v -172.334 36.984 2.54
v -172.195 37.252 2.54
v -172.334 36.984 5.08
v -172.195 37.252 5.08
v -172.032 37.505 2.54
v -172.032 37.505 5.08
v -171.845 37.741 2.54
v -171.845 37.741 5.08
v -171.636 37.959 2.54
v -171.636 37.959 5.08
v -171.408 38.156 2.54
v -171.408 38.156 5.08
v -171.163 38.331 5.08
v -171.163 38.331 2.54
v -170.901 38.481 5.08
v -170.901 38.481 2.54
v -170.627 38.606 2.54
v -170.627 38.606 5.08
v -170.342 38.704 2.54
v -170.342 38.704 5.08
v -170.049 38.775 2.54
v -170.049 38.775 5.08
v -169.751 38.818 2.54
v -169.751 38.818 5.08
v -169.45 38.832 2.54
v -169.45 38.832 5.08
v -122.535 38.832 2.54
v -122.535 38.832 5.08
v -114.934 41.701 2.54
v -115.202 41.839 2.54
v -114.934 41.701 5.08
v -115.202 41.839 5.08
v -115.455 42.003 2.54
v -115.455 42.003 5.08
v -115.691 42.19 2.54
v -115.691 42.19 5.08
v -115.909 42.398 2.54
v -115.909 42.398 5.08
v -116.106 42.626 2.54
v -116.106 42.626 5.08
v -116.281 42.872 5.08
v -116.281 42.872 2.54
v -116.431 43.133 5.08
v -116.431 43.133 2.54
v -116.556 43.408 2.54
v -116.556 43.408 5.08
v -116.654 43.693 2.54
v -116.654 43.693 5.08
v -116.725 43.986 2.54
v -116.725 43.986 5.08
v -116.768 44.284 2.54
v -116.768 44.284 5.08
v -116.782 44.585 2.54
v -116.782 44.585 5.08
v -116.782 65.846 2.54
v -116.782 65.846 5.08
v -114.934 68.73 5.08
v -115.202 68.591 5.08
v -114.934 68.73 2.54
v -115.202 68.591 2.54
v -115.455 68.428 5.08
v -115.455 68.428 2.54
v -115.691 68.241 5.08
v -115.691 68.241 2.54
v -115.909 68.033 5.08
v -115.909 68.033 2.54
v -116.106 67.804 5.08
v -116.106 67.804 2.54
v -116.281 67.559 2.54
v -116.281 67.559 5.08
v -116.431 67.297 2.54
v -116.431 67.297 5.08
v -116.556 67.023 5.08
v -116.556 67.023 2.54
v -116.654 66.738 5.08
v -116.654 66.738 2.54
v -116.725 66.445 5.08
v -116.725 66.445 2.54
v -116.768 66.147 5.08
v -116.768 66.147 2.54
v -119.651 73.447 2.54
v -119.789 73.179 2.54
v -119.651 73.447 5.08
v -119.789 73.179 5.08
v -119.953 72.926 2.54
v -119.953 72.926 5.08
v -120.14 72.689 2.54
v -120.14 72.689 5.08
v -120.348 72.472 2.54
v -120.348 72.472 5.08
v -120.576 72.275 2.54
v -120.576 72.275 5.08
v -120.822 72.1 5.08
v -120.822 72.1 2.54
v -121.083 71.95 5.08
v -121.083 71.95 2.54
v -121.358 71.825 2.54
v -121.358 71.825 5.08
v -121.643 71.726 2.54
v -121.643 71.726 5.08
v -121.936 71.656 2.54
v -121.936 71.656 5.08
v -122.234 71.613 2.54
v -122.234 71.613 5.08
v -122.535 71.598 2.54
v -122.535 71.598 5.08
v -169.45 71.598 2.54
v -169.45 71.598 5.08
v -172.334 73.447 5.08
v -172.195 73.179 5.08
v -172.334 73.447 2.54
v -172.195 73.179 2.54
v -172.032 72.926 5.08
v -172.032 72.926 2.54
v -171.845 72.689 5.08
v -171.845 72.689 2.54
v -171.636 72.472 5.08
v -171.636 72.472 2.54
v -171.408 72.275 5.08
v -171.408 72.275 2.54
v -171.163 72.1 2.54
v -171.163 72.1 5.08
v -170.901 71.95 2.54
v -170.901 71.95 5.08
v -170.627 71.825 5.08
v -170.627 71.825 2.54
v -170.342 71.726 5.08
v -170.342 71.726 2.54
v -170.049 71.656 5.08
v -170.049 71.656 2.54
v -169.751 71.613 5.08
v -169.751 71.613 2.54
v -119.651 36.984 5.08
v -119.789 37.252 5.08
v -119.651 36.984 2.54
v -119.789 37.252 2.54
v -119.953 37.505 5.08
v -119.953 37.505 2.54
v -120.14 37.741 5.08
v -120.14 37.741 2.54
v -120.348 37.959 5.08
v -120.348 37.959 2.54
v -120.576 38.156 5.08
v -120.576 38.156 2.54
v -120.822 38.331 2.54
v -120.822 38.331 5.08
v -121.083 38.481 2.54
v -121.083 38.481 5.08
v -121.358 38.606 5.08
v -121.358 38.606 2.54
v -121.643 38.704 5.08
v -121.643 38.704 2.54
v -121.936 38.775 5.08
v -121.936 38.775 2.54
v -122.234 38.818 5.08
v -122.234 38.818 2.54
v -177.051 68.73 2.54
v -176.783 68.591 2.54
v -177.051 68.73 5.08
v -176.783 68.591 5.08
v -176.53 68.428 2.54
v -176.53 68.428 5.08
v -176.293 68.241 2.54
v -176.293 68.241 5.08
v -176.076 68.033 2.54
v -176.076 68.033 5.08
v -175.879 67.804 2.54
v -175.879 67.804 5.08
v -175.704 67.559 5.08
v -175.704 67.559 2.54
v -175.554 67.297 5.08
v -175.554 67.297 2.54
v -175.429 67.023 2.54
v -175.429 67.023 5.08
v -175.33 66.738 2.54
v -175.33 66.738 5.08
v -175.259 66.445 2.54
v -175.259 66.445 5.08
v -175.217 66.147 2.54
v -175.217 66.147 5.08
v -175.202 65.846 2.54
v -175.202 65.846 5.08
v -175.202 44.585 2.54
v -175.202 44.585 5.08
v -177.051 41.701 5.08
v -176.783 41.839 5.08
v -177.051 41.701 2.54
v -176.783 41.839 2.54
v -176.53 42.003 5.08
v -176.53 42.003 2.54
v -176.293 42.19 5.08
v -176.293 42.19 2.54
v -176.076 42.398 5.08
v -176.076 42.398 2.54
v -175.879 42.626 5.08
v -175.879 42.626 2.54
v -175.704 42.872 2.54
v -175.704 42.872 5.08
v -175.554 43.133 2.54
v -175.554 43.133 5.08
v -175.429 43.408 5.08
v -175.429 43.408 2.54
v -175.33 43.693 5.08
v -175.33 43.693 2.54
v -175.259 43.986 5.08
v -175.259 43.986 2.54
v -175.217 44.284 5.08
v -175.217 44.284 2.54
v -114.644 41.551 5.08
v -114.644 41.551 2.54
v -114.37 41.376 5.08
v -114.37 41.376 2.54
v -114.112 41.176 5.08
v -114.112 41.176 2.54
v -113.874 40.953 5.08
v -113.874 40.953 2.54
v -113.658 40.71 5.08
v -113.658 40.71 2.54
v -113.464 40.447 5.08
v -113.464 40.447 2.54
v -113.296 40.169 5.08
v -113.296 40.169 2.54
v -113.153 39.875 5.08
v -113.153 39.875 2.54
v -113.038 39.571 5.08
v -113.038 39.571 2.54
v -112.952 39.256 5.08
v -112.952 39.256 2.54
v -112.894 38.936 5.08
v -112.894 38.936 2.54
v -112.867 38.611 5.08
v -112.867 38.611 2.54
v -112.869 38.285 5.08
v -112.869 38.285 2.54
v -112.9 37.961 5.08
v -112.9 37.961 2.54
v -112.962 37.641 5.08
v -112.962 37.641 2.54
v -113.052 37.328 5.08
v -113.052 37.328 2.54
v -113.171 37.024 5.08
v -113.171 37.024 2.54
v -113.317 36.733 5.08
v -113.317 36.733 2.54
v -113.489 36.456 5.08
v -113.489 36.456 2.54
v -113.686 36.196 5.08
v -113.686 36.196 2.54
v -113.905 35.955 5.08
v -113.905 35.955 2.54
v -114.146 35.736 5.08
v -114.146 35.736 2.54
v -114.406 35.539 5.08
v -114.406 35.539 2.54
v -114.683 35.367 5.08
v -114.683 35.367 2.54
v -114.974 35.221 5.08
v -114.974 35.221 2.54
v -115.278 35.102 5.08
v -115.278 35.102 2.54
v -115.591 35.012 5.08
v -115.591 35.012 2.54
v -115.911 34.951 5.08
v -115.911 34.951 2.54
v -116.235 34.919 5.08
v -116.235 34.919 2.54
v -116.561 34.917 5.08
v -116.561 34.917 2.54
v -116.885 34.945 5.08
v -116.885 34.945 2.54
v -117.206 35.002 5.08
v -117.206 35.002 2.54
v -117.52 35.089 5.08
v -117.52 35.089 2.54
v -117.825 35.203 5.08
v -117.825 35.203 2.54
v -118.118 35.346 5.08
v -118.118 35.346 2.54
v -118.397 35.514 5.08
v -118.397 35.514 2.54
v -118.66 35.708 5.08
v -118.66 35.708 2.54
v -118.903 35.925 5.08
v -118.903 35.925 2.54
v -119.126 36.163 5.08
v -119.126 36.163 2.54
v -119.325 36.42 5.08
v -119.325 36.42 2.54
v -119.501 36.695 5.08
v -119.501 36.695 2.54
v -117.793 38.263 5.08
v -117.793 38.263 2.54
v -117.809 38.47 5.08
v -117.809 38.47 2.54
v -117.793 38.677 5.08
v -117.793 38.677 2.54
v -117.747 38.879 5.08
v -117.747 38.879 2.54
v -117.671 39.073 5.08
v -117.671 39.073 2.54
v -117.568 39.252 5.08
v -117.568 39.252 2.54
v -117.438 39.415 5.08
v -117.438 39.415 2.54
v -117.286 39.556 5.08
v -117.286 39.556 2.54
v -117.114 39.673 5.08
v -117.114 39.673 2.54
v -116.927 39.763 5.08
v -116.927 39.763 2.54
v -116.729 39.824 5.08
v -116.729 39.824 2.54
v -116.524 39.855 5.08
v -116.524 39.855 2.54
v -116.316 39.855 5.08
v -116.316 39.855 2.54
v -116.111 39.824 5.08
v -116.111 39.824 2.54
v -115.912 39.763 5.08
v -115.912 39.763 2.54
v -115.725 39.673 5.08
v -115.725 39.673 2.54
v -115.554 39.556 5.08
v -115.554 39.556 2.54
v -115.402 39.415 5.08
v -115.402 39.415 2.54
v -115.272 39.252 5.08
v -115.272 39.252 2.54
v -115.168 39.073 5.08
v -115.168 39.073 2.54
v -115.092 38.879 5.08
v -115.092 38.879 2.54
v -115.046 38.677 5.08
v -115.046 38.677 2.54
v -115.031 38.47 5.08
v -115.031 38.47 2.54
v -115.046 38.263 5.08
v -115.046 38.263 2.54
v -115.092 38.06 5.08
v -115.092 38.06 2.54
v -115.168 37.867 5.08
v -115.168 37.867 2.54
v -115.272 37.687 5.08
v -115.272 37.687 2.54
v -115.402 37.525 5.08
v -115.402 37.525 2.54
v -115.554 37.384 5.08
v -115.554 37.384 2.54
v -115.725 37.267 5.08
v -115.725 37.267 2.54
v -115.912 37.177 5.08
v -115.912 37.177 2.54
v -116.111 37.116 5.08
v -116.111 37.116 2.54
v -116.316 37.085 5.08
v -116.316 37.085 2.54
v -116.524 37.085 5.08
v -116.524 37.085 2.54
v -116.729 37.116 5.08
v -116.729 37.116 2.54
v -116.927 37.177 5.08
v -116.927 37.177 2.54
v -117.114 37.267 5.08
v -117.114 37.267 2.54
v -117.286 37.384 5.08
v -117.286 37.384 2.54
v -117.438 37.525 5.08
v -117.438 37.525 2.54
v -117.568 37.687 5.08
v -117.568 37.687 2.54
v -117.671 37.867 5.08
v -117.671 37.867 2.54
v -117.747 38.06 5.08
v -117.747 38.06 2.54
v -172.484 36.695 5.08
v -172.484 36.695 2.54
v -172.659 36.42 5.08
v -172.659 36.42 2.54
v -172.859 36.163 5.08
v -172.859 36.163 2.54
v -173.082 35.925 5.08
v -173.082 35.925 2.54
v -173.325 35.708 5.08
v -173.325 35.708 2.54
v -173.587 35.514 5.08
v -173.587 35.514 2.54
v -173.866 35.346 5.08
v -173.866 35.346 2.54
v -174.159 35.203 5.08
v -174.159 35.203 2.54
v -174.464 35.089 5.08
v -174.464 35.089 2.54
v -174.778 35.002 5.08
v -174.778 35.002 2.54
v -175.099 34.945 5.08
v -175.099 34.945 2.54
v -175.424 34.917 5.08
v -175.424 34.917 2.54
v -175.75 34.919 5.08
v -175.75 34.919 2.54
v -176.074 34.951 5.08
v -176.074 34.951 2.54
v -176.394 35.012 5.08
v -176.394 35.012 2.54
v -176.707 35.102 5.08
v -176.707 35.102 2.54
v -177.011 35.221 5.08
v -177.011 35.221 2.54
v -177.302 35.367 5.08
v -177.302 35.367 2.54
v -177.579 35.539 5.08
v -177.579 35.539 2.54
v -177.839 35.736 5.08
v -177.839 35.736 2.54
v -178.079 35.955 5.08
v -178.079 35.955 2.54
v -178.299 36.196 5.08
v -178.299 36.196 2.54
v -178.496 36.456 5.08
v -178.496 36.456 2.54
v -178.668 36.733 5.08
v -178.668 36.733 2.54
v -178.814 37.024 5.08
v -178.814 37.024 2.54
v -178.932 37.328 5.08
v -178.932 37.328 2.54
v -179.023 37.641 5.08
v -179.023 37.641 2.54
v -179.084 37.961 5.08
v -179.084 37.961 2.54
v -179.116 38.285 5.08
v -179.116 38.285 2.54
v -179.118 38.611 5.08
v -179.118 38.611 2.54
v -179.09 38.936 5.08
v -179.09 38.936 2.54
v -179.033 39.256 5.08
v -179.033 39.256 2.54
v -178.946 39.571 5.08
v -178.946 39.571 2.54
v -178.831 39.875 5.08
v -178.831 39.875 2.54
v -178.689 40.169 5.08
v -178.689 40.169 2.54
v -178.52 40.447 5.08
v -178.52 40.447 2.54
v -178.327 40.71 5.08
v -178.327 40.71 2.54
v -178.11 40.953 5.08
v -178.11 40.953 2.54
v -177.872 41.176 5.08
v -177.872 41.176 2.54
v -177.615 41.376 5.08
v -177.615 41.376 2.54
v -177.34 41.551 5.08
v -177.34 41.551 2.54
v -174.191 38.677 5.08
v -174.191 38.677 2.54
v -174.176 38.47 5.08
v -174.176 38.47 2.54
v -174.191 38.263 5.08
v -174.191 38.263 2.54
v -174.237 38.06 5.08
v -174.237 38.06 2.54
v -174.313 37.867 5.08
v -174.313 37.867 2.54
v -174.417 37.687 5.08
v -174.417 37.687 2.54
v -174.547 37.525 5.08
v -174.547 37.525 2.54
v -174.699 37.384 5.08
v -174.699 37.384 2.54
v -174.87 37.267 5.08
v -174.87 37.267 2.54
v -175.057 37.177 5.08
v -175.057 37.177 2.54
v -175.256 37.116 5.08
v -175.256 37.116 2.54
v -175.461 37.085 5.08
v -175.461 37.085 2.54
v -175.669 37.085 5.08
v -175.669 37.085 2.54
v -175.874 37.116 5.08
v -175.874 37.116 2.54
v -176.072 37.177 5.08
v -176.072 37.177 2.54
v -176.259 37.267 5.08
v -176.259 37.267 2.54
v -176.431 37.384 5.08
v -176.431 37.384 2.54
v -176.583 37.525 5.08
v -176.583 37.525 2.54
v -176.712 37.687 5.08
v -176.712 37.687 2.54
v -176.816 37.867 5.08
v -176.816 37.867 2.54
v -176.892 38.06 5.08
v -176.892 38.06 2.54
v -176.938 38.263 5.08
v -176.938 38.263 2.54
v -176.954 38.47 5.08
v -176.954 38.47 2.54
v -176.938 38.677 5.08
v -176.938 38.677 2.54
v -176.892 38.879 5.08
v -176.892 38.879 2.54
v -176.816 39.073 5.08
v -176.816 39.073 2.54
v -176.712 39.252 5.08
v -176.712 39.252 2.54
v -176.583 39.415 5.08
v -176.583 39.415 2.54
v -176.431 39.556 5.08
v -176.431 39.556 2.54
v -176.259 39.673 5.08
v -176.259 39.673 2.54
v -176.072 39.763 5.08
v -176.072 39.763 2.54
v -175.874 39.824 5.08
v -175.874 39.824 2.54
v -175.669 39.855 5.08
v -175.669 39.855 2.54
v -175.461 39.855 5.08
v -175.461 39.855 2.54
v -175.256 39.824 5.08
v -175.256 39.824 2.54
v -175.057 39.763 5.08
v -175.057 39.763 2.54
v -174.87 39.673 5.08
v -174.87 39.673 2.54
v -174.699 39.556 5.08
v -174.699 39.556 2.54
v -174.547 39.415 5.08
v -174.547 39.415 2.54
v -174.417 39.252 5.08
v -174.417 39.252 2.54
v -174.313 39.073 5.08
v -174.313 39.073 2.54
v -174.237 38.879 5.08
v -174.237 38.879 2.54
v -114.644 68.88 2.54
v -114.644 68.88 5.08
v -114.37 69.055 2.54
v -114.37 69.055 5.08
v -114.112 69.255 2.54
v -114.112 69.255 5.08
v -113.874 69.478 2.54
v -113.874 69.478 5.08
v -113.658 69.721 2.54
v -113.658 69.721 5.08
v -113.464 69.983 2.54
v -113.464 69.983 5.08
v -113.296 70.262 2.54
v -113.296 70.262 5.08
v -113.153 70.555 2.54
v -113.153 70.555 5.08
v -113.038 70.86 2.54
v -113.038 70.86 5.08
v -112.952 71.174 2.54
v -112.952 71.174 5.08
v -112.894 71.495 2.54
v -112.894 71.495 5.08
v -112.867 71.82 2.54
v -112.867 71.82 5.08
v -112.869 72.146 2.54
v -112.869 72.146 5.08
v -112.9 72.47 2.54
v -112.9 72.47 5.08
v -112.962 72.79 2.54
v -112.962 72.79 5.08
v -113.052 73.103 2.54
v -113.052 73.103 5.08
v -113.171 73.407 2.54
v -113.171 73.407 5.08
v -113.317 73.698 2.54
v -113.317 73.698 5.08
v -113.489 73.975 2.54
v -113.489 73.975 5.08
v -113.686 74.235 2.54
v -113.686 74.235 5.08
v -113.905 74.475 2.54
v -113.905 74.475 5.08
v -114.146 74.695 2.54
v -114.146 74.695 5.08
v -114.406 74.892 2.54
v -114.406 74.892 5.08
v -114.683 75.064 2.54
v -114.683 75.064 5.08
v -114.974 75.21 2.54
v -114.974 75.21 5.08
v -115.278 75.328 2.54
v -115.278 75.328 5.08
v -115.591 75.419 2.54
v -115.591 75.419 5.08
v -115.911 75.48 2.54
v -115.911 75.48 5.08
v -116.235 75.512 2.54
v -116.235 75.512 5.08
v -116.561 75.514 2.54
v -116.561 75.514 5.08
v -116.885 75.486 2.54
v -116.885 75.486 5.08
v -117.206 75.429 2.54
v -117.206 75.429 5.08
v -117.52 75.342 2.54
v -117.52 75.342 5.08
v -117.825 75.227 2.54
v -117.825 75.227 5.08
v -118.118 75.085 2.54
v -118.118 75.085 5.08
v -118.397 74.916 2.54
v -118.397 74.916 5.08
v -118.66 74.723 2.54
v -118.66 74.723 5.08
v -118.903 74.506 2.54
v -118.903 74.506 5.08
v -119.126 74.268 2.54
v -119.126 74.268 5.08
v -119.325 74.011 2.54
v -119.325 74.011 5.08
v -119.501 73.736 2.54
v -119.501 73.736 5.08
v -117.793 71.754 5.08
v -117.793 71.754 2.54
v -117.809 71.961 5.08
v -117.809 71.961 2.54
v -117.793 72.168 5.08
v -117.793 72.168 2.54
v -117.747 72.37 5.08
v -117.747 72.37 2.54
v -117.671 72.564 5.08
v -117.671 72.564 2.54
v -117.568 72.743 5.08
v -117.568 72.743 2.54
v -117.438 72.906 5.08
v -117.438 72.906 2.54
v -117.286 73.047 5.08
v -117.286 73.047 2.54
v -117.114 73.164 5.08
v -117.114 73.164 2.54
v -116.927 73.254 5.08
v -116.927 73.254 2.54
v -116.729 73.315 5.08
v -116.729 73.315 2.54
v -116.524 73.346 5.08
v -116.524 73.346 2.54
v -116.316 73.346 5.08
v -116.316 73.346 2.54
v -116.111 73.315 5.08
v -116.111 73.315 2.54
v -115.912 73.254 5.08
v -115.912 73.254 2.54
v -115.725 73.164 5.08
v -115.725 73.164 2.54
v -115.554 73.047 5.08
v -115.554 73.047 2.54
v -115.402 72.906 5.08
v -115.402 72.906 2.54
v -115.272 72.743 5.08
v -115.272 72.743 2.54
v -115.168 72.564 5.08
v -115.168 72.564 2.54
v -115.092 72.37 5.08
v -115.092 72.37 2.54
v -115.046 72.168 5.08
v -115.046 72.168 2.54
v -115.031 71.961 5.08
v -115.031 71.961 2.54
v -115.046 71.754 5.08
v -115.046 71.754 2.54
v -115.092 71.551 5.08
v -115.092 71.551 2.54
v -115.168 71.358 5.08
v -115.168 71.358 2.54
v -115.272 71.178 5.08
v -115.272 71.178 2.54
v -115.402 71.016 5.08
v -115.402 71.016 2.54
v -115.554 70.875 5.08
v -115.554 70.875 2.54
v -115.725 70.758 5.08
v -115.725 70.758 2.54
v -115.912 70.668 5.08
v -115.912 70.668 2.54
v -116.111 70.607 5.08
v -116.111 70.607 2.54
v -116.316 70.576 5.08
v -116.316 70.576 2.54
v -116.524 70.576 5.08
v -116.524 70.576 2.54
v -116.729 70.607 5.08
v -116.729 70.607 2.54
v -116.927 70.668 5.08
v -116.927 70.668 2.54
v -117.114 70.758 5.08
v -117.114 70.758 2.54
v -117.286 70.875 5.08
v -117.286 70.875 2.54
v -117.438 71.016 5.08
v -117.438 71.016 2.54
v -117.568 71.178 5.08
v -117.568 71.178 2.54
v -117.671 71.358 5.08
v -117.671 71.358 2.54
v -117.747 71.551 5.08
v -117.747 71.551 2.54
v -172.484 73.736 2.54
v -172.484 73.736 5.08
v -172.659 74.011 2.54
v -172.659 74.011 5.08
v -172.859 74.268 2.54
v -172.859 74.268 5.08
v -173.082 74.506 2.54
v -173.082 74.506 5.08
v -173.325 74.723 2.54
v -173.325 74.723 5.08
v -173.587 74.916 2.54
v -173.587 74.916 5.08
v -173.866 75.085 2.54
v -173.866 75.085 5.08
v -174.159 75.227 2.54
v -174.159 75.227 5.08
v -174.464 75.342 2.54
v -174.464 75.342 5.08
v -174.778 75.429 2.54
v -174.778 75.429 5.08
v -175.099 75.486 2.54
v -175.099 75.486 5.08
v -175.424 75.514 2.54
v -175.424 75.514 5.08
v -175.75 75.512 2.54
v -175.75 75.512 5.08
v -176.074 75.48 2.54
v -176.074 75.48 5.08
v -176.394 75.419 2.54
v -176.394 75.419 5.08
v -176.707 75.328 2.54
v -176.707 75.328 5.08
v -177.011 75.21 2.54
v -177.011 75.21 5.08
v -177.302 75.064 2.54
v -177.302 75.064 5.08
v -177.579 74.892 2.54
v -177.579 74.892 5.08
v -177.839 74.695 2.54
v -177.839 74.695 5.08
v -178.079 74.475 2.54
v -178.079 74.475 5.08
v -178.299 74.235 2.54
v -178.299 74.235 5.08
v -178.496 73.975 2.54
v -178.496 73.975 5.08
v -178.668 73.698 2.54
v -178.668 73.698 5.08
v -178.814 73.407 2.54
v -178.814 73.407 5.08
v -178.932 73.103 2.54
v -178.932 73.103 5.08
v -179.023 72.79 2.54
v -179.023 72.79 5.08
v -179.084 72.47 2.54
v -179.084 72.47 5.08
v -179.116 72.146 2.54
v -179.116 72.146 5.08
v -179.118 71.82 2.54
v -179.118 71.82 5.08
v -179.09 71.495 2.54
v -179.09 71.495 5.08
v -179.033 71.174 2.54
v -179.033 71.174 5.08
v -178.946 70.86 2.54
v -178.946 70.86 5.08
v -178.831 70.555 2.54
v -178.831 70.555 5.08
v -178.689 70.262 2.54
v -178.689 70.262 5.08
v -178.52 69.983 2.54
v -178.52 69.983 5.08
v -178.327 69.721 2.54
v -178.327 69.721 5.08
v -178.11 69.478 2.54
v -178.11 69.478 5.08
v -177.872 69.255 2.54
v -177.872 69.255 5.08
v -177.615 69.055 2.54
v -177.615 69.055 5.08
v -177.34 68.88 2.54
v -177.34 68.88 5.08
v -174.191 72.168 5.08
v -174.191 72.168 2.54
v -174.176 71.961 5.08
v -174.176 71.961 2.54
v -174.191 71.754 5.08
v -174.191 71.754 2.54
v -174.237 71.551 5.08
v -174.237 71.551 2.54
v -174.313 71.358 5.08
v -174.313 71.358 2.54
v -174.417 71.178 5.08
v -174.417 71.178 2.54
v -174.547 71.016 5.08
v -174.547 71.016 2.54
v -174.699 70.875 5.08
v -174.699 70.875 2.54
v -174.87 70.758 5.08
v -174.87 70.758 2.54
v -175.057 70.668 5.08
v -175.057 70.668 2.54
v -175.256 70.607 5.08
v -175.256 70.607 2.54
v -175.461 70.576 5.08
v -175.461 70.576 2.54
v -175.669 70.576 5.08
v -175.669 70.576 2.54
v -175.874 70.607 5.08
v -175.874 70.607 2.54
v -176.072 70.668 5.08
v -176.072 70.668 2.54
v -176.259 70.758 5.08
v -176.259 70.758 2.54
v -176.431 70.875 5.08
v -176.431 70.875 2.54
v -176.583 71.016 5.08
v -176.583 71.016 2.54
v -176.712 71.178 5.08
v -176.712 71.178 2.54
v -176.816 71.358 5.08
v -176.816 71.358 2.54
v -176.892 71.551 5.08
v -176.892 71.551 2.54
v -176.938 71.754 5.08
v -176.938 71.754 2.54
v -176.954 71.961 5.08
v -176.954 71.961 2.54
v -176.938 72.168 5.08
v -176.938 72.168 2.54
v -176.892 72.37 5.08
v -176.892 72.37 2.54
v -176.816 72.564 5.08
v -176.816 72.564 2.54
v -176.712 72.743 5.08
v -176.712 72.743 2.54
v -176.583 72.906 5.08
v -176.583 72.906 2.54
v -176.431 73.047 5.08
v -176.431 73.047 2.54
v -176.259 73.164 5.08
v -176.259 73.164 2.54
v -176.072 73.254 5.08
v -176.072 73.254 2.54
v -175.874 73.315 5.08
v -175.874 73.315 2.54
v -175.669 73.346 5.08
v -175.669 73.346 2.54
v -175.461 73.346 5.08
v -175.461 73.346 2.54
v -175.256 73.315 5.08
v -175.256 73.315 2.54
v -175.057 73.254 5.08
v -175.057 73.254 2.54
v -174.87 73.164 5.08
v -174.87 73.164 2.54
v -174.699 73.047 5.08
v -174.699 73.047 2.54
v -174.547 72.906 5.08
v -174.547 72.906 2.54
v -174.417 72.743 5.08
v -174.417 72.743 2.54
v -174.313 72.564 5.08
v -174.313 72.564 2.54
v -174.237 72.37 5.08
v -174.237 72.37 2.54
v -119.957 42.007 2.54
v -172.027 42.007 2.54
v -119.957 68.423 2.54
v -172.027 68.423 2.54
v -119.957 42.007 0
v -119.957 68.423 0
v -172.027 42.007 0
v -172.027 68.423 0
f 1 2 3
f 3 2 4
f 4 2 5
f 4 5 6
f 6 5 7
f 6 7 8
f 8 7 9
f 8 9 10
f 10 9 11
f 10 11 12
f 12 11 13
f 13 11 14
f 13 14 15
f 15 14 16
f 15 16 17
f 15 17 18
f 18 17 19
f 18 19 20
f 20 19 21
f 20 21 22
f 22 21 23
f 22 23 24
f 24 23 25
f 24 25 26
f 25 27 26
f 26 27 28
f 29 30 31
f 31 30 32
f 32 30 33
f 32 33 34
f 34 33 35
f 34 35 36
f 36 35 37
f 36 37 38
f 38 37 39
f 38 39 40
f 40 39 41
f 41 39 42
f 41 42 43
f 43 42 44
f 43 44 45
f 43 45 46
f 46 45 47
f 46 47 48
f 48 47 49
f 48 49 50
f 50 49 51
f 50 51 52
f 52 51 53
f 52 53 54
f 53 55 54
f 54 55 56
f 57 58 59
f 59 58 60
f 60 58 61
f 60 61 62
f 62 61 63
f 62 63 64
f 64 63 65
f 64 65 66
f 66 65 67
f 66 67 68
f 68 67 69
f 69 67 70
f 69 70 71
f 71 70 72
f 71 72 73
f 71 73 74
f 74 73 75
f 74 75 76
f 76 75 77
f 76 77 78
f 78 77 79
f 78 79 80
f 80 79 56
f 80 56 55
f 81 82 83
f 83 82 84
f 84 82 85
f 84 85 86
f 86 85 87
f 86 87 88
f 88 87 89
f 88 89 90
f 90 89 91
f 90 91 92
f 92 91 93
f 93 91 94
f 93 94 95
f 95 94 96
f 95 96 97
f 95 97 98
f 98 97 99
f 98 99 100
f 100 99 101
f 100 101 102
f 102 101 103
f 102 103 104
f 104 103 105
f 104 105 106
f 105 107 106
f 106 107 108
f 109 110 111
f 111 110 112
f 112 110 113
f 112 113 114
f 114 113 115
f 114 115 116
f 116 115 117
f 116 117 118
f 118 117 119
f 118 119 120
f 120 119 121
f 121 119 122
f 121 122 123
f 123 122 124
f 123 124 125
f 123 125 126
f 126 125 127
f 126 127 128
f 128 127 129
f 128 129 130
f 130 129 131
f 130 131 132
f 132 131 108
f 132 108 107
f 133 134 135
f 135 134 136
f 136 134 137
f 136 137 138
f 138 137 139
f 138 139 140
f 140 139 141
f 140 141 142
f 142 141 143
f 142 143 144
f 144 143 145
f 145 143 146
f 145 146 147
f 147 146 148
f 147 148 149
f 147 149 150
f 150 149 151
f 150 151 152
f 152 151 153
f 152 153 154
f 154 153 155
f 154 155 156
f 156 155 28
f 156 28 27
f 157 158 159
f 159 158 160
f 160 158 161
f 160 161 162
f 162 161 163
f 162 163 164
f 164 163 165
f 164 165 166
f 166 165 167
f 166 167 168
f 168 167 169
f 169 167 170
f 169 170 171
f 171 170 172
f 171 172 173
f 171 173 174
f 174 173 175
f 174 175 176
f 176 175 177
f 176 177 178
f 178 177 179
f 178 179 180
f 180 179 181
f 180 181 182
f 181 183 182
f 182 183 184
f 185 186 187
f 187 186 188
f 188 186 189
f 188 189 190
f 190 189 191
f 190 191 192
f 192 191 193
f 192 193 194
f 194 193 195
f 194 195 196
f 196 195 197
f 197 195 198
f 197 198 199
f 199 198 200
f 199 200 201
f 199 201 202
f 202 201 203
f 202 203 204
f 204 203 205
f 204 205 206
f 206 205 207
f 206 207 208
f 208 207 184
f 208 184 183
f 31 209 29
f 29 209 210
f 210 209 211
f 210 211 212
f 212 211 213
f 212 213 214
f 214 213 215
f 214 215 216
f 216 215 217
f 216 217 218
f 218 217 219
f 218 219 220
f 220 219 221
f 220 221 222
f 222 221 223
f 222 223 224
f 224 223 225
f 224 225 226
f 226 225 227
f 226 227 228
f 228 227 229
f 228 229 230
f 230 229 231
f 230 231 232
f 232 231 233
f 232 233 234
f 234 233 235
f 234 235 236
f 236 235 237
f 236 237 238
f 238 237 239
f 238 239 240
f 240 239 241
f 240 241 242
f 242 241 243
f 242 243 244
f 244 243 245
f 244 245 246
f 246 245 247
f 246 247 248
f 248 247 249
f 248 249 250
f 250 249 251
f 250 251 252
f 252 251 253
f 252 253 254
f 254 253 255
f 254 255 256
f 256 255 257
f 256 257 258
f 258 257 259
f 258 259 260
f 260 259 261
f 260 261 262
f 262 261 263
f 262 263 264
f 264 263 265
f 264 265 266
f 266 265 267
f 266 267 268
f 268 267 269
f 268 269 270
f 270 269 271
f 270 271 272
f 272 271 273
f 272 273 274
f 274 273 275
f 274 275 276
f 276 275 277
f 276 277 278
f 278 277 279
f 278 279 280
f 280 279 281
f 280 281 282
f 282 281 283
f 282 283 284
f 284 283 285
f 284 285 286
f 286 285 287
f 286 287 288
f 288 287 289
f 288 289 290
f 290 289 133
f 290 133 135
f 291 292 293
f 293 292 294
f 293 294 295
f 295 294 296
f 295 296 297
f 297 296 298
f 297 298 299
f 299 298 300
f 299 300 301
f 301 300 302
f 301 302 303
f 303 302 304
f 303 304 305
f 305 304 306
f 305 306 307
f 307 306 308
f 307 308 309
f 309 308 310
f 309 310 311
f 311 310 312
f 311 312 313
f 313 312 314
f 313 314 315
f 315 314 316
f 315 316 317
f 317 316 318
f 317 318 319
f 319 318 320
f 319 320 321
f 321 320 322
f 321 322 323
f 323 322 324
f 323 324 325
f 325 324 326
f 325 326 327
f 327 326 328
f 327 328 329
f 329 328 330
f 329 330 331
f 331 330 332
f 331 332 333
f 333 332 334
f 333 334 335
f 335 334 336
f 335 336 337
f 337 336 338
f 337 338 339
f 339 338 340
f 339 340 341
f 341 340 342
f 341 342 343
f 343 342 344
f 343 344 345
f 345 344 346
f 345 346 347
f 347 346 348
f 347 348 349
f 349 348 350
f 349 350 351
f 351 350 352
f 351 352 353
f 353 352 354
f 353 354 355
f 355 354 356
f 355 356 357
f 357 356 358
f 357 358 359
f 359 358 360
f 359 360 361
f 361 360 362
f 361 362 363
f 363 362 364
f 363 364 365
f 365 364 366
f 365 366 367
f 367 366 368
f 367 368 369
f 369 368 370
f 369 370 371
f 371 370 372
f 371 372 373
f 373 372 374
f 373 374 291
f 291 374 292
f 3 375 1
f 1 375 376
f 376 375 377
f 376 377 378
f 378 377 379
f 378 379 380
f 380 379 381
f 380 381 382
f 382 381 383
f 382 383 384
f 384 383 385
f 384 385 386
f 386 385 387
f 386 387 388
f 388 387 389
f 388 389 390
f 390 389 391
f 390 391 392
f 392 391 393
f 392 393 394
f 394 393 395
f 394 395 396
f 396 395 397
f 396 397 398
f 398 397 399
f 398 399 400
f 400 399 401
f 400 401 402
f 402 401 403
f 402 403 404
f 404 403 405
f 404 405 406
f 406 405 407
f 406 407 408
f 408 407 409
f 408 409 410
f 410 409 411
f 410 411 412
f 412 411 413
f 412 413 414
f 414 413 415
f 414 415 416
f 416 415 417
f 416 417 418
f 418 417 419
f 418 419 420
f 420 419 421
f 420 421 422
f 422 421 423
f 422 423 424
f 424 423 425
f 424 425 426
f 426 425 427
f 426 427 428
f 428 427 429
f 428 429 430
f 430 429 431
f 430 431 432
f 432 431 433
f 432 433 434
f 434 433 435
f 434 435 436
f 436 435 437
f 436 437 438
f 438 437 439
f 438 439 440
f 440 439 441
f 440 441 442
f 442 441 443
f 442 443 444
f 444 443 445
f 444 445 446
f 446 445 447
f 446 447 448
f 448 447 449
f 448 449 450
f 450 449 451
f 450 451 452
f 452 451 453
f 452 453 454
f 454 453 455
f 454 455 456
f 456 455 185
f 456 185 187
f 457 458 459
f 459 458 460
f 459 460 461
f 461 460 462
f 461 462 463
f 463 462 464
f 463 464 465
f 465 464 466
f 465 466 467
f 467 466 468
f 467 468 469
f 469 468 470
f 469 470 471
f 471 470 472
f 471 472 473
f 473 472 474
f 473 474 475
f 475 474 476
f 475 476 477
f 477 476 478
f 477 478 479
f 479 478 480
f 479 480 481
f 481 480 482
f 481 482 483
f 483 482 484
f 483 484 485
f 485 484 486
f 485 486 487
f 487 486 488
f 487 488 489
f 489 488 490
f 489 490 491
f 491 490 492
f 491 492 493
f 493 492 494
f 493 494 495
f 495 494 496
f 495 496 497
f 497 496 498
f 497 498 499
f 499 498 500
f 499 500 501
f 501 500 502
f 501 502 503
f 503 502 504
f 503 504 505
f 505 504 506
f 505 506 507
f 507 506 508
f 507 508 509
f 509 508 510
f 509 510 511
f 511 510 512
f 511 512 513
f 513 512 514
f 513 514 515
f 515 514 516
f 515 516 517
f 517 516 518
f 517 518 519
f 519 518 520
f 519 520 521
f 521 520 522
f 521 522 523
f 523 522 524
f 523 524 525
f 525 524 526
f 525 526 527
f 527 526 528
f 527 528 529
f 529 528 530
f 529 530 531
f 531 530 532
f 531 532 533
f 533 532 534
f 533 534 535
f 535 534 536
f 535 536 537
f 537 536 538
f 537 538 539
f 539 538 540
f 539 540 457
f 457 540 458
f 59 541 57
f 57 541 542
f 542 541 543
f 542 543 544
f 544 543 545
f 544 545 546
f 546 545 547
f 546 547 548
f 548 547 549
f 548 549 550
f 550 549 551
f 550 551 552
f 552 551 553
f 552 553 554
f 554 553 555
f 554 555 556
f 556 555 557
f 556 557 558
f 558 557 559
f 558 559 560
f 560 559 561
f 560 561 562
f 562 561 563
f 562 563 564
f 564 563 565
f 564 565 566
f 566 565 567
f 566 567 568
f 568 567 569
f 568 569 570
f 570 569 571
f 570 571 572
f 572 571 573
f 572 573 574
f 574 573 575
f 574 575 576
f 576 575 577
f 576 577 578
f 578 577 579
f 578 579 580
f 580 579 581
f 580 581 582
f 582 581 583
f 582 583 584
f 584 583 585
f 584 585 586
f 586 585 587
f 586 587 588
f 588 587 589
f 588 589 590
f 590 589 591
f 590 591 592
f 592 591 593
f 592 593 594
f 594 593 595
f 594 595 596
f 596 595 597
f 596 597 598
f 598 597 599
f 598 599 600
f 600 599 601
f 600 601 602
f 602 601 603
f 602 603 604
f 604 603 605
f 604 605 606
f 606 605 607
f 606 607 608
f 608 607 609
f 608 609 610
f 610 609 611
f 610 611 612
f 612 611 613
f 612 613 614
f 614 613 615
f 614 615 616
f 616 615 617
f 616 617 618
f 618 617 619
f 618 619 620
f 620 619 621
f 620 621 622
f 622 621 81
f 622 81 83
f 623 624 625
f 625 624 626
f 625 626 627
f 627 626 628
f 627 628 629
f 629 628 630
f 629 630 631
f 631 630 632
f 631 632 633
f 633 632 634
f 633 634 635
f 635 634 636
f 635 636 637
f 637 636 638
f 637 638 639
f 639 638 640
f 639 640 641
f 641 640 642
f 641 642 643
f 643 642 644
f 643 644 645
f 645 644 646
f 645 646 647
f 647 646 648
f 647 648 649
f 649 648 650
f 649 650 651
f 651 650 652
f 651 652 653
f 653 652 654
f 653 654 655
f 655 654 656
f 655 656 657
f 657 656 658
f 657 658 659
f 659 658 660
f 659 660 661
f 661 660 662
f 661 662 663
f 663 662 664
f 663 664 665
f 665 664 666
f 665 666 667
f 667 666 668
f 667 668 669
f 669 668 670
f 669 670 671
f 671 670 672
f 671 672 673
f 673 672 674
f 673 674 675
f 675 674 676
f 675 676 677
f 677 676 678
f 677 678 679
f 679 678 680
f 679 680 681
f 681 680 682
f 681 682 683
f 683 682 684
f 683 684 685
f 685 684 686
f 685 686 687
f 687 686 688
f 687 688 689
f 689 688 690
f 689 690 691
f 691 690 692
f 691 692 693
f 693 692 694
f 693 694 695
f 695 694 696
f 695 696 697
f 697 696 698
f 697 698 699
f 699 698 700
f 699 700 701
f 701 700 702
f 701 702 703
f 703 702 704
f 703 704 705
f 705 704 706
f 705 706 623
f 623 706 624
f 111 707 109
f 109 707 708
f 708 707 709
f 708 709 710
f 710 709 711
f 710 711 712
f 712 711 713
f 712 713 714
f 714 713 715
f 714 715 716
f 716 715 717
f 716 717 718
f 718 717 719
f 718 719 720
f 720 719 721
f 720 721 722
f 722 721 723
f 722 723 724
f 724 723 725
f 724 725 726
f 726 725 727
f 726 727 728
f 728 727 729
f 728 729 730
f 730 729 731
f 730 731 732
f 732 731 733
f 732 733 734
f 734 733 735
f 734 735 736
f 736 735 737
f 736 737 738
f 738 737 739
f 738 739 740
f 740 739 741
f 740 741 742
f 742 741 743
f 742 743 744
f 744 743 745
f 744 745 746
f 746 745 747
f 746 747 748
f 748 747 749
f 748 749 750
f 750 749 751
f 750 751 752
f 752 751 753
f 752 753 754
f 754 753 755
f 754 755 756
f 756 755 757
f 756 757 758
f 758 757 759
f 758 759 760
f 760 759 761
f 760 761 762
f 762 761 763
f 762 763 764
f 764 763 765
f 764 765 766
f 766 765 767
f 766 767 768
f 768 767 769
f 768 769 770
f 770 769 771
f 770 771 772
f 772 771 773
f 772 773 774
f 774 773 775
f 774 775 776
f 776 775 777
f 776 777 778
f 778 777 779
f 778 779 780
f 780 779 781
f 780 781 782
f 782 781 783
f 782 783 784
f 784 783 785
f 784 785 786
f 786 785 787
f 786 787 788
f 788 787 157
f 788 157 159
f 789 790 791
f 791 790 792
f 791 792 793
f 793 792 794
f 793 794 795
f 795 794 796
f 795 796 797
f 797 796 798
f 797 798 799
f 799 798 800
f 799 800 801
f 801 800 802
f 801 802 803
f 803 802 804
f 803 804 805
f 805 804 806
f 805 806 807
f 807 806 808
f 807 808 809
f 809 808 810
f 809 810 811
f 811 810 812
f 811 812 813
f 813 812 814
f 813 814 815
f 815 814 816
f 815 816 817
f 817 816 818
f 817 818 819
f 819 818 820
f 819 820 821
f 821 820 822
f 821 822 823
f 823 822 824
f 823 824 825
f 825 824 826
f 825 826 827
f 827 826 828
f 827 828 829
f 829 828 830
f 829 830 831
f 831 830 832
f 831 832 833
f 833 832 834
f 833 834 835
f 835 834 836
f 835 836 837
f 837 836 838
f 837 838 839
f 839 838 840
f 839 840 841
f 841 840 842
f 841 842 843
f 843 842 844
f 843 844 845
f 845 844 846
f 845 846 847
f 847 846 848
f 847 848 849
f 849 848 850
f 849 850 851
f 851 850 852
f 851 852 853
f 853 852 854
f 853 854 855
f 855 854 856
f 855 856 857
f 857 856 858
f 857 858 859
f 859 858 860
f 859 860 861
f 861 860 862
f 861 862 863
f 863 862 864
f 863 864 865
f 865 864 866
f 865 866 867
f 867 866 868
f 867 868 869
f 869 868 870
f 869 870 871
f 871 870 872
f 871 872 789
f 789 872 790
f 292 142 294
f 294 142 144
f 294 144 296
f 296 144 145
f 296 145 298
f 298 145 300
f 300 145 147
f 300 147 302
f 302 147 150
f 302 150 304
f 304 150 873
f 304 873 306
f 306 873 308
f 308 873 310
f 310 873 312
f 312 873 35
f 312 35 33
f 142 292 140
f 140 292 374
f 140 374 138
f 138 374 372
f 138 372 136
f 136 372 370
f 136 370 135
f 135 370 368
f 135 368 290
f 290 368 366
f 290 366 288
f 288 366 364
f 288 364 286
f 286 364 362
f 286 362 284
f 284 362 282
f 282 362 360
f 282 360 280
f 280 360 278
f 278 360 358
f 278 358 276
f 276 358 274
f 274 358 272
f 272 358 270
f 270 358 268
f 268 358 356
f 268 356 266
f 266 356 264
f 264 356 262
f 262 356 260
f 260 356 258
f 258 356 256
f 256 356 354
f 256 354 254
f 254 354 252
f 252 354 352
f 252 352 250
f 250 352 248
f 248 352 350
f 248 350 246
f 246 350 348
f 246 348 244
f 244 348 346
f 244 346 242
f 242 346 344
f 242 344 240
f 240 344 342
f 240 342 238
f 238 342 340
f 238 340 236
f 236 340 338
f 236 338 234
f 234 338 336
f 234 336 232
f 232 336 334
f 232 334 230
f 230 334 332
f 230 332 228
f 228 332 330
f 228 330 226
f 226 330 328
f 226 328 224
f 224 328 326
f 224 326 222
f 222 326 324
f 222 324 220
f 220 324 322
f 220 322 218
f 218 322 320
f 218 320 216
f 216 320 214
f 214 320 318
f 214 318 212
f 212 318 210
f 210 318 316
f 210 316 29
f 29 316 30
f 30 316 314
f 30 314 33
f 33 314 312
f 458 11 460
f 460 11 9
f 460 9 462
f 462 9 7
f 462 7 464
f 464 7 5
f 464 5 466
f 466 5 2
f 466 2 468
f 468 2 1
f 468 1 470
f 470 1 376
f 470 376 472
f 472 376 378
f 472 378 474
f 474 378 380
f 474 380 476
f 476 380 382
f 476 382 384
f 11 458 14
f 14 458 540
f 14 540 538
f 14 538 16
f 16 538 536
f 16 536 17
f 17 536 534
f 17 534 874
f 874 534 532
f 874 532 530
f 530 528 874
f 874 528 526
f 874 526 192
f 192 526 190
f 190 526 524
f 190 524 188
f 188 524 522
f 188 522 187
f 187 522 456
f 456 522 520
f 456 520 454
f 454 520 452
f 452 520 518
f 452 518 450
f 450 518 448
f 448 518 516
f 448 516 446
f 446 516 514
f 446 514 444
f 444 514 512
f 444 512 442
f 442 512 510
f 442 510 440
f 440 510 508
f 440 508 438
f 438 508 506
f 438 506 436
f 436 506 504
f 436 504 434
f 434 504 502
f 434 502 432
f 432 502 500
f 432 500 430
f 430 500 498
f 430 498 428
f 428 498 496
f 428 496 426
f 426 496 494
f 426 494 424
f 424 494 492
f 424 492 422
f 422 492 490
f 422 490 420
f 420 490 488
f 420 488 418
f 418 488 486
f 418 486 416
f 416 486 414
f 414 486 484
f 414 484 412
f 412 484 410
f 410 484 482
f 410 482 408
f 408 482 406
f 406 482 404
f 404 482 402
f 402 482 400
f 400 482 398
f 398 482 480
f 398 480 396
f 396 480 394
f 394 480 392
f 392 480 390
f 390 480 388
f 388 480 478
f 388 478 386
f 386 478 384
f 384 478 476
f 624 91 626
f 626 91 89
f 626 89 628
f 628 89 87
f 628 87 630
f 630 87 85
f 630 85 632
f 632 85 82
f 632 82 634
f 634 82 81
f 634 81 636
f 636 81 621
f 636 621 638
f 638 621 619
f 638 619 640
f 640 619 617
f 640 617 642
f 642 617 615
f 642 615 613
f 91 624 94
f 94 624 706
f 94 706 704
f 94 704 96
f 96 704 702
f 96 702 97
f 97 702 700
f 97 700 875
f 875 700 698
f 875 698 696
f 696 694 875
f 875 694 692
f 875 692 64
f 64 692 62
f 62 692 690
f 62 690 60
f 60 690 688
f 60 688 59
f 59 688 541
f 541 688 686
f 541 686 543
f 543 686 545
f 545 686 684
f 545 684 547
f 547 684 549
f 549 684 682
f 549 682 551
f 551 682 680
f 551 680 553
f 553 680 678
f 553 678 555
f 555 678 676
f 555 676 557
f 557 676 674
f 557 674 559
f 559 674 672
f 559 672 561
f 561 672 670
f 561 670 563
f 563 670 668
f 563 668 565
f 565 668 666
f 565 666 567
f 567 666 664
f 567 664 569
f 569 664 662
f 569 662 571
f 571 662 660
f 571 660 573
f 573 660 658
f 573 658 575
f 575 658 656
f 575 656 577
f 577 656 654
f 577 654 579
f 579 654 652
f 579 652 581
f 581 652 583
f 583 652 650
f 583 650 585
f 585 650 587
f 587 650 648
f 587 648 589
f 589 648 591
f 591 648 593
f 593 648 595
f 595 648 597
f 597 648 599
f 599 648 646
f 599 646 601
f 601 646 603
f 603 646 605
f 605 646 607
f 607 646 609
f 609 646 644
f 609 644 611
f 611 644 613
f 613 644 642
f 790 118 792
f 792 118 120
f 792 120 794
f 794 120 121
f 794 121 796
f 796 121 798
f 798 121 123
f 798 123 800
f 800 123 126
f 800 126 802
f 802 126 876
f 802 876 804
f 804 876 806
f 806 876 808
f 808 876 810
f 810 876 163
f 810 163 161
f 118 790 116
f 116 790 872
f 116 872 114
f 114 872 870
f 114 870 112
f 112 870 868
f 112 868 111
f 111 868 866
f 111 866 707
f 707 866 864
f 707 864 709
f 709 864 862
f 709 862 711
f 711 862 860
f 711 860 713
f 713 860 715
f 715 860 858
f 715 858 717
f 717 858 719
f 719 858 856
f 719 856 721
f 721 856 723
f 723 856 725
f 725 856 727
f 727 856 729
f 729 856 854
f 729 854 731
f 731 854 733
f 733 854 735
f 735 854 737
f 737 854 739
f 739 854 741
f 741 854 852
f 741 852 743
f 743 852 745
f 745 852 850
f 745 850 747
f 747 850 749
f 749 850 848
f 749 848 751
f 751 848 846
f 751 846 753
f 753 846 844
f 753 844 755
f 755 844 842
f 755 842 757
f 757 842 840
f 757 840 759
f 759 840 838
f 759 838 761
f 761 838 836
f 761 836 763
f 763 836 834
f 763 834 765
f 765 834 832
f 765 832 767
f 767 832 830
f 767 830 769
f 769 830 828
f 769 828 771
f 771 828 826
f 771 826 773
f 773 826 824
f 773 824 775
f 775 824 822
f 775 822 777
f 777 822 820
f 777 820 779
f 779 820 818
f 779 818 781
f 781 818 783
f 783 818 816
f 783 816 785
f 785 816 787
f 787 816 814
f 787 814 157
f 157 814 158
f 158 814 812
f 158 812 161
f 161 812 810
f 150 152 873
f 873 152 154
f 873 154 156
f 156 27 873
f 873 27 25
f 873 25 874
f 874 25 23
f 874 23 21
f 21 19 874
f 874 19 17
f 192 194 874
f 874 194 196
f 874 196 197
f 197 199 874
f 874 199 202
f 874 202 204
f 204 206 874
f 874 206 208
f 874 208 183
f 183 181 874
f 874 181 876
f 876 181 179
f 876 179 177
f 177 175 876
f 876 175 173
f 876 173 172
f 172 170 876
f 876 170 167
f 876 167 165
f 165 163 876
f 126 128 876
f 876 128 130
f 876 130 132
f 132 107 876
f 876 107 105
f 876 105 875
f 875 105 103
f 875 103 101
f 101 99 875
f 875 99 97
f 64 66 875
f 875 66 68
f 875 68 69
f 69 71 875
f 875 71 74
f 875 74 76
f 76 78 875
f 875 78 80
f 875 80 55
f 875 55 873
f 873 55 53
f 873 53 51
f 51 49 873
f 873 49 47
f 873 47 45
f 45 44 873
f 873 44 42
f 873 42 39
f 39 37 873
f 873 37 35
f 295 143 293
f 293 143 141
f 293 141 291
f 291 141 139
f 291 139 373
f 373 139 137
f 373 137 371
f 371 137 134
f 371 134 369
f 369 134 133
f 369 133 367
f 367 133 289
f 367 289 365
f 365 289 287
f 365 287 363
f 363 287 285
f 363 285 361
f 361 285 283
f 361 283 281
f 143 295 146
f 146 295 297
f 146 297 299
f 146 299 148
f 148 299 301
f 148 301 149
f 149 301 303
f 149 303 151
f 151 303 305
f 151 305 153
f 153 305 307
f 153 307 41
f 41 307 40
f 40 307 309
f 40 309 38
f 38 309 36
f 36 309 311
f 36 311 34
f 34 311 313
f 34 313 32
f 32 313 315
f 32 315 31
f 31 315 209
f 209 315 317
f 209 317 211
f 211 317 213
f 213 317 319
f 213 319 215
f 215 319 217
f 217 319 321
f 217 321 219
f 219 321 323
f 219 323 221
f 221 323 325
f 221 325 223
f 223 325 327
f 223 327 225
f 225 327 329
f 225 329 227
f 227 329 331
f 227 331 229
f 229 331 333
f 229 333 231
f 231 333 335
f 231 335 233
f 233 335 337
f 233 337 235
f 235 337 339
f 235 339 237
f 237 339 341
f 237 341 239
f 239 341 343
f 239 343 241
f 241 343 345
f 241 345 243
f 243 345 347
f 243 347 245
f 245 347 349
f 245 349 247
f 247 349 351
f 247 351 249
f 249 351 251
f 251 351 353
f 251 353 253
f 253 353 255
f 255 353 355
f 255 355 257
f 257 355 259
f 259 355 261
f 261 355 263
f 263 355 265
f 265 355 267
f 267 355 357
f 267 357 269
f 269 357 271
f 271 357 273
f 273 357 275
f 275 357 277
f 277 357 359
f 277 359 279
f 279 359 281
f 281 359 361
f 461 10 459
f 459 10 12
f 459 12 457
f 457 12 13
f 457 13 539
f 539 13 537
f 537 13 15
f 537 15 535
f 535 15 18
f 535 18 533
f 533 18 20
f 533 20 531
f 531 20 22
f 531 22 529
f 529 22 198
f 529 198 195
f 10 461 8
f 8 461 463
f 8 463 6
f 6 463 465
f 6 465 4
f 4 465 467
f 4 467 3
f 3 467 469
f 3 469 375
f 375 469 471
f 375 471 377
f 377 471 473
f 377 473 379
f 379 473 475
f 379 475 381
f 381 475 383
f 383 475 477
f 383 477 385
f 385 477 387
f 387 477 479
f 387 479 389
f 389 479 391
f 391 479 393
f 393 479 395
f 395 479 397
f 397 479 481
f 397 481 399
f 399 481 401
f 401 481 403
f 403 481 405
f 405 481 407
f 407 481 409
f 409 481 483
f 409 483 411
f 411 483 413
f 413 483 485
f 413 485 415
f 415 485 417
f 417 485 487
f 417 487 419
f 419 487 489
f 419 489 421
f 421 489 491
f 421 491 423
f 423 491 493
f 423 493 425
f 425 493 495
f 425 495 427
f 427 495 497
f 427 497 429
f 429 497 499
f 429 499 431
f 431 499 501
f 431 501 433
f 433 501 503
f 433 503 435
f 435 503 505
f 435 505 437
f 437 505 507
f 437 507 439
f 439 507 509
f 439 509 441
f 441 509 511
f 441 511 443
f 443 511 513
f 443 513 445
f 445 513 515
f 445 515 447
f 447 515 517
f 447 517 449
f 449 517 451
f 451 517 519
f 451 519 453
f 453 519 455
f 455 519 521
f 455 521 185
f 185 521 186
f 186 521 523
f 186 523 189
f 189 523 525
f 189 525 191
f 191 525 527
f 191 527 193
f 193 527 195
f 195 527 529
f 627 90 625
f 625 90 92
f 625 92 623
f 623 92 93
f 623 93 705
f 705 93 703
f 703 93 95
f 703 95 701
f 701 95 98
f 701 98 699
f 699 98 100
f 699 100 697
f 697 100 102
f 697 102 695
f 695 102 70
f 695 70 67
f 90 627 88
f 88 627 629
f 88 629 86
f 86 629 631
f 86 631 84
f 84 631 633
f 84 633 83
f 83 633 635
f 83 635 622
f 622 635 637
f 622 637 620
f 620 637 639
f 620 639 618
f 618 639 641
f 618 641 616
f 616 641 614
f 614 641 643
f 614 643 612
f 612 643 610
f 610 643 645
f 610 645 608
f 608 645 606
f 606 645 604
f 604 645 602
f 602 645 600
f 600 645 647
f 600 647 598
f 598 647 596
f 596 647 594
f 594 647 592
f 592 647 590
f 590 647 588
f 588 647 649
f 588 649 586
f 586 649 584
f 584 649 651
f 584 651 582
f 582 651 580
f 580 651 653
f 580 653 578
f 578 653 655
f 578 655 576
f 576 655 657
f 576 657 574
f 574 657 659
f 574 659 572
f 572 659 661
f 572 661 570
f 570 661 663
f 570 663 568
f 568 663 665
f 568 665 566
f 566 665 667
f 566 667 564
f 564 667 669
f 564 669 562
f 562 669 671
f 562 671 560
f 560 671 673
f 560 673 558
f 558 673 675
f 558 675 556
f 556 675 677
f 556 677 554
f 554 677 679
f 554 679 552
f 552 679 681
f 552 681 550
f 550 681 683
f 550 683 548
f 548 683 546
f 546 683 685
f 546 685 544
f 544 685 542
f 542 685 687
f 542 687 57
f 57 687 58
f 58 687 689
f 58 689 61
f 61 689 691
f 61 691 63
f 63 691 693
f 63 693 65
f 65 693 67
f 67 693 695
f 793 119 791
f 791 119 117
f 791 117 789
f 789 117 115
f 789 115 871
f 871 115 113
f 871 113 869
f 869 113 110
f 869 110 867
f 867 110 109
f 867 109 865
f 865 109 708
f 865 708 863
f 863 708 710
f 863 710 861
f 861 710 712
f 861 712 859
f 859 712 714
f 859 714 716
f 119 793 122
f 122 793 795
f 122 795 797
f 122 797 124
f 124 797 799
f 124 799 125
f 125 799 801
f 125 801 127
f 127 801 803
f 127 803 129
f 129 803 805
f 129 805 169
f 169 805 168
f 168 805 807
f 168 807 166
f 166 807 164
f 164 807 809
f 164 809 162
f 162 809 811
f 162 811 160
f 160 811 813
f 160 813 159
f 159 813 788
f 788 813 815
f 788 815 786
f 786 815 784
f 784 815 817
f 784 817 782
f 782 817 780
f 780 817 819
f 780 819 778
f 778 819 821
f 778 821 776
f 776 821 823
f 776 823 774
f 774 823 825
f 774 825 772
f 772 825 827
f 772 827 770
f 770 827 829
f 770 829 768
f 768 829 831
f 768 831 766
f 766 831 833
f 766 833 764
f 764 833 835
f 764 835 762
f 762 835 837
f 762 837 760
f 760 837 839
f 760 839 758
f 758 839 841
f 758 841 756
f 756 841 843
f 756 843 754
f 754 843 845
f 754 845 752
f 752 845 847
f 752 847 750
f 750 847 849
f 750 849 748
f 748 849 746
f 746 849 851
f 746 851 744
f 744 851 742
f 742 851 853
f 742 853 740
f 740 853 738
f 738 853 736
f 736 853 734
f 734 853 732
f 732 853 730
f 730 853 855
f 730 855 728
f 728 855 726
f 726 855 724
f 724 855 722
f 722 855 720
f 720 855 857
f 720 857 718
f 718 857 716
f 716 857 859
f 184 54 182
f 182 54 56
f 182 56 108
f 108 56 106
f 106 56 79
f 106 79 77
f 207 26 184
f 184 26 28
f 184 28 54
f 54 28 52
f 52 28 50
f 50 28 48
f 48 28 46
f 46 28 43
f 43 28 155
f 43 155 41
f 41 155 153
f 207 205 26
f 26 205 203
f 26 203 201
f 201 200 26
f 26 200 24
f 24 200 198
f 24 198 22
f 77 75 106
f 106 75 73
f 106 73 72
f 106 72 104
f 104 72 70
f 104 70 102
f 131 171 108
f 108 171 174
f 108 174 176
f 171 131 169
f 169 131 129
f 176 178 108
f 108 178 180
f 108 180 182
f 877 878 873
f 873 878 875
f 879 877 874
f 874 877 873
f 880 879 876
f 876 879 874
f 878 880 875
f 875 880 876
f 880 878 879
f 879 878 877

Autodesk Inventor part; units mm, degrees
ref_plane "YZ Plane" through (0, 0, 0) normal (1, 0, 0) x (0, 1, 0)
sketch "Sketch1" plane through (0, 0, 0) normal (0, 0, 1) x (1, 0, 0)
  line L0 (-172.0273, 68.4234) -> (-119.9573, 68.4234)
  line L1 (-119.9573, 68.4234) -> (-119.9573, 42.0074)
  line L2 (-119.9573, 42.0074) -> (-172.0273, 42.0074)
  line L3 (-172.0273, 42.0074) -> (-172.0273, 68.4234)
  point P0 (0, 0)
  dimension "d0" = 52.07
  dimension "d1" = 26.416
extrude "Extrusion1" add sketch "Sketch1" along normal blind 2.54
sketch "Sketch2" plane through (0, 0, 2.54) normal (0, 0, 1) x (1, 0, 0)
  line L0 (-119.9573, 68.4234) -> (-172.0273, 68.4234) projected
  line L1 (-119.9573, 68.4234) -> (-172.0273, 68.4234) projected
  line L2 (-172.0273, 68.4234) -> (-172.0273, 42.0074) projected
  line L3 (-172.0273, 42.0074) -> (-119.9573, 42.0074) projected
  line L4 (-119.9573, 42.0074) -> (-119.9573, 68.4234) projected
  line L5 (-116.7823, 38.8324) -> (-175.2023, 38.8324)
  line L6 (-175.2023, 38.8324) -> (-175.2023, 71.5984)
  line L7 (-175.2023, 71.5984) -> (-116.7823, 71.5984)
  line L8 (-116.7823, 71.5984) -> (-116.7823, 38.8324)
  point P0 (0, 0)
  dimension "d18" = 3.175
  dimension "d19" = 3.175
  dimension "d20" = 3.175
  dimension "d21" = 3.175
  dimension "d25" = 32.766
  dimension "d26" = 58.42
extrude "Extrusion2" add sketch "Sketch2" along normal blind 2.54 contours L4 L3 L2 L0 | L5 L6 L7 L8
fillet "Fillet1" radius 3.175 4 edges at (-116.7823, 38.8324, 3.81) (-175.2023, 38.8324, 3.81) (-116.7823, 71.5984, 3.81) (-175.2023, 71.5984, 3.81)
sketch "Sketch4" plane through (0, 0, 5.08) normal (0, 0, 1) x (1, 0, 0)
  circle A0 centre (-175.5648, 71.9609) radius 1.3891
  line L0 (-119.9573, 71.5984) -> (-172.0273, 71.5984) projected
  arc A1 (-172.0273, 71.5984) -> (-175.2023, 68.4234) centre (-172.0273, 68.4234) ccw projected
  line L1 (-175.2023, 68.4234) -> (-175.2023, 42.0074) projected
  arc A2 (-172.0273, 71.5984) -> (-175.2023, 68.4234) centre (-175.5648, 71.9609) ccw
  point P0 (0, 0)
  dimension "d12" = 2.7781
  dimension "d23" = 3.556
extrude "Extrusion3" add sketch "Sketch4" against normal up to surface (2.54 mm away)
ref_plane "Work Plane1" through (-145.9923, 42.0074, 2.54) normal (-1, 0, 0) x (0, 0, 1)
ref_plane "Work Plane2" through (-172.0273, 55.2154, 2.54) normal (0, -1, 0) x (1, 0, 0)
mirror "Mirror1" about plane through (-145.9923, 42.0074, 2.54) normal (-1, 0, 0) of "Extrusion3"
mirror "Mirror2" about plane through (-172.0273, 55.2154, 2.54) normal (0, -1, 0) of "Extrusion3", "Mirror1"
fillet "Fillet3" radius 3.175 8 edges at (-175.2023, 42.0074, 3.81) (-175.2023, 68.4234, 3.81) (-119.9573, 38.8324, 3.81) (-172.0273, 71.5984, 3.81) (-119.9573, 71.5984, 3.81) (-116.7823, 68.4234, 3.81) (-116.7823, 42.0074, 3.81) (-172.0273, 38.8324, 3.81)
equation "\"d19\" = d18"
equation "\"d21\" = d20"
properties part number "sensor_lid"
